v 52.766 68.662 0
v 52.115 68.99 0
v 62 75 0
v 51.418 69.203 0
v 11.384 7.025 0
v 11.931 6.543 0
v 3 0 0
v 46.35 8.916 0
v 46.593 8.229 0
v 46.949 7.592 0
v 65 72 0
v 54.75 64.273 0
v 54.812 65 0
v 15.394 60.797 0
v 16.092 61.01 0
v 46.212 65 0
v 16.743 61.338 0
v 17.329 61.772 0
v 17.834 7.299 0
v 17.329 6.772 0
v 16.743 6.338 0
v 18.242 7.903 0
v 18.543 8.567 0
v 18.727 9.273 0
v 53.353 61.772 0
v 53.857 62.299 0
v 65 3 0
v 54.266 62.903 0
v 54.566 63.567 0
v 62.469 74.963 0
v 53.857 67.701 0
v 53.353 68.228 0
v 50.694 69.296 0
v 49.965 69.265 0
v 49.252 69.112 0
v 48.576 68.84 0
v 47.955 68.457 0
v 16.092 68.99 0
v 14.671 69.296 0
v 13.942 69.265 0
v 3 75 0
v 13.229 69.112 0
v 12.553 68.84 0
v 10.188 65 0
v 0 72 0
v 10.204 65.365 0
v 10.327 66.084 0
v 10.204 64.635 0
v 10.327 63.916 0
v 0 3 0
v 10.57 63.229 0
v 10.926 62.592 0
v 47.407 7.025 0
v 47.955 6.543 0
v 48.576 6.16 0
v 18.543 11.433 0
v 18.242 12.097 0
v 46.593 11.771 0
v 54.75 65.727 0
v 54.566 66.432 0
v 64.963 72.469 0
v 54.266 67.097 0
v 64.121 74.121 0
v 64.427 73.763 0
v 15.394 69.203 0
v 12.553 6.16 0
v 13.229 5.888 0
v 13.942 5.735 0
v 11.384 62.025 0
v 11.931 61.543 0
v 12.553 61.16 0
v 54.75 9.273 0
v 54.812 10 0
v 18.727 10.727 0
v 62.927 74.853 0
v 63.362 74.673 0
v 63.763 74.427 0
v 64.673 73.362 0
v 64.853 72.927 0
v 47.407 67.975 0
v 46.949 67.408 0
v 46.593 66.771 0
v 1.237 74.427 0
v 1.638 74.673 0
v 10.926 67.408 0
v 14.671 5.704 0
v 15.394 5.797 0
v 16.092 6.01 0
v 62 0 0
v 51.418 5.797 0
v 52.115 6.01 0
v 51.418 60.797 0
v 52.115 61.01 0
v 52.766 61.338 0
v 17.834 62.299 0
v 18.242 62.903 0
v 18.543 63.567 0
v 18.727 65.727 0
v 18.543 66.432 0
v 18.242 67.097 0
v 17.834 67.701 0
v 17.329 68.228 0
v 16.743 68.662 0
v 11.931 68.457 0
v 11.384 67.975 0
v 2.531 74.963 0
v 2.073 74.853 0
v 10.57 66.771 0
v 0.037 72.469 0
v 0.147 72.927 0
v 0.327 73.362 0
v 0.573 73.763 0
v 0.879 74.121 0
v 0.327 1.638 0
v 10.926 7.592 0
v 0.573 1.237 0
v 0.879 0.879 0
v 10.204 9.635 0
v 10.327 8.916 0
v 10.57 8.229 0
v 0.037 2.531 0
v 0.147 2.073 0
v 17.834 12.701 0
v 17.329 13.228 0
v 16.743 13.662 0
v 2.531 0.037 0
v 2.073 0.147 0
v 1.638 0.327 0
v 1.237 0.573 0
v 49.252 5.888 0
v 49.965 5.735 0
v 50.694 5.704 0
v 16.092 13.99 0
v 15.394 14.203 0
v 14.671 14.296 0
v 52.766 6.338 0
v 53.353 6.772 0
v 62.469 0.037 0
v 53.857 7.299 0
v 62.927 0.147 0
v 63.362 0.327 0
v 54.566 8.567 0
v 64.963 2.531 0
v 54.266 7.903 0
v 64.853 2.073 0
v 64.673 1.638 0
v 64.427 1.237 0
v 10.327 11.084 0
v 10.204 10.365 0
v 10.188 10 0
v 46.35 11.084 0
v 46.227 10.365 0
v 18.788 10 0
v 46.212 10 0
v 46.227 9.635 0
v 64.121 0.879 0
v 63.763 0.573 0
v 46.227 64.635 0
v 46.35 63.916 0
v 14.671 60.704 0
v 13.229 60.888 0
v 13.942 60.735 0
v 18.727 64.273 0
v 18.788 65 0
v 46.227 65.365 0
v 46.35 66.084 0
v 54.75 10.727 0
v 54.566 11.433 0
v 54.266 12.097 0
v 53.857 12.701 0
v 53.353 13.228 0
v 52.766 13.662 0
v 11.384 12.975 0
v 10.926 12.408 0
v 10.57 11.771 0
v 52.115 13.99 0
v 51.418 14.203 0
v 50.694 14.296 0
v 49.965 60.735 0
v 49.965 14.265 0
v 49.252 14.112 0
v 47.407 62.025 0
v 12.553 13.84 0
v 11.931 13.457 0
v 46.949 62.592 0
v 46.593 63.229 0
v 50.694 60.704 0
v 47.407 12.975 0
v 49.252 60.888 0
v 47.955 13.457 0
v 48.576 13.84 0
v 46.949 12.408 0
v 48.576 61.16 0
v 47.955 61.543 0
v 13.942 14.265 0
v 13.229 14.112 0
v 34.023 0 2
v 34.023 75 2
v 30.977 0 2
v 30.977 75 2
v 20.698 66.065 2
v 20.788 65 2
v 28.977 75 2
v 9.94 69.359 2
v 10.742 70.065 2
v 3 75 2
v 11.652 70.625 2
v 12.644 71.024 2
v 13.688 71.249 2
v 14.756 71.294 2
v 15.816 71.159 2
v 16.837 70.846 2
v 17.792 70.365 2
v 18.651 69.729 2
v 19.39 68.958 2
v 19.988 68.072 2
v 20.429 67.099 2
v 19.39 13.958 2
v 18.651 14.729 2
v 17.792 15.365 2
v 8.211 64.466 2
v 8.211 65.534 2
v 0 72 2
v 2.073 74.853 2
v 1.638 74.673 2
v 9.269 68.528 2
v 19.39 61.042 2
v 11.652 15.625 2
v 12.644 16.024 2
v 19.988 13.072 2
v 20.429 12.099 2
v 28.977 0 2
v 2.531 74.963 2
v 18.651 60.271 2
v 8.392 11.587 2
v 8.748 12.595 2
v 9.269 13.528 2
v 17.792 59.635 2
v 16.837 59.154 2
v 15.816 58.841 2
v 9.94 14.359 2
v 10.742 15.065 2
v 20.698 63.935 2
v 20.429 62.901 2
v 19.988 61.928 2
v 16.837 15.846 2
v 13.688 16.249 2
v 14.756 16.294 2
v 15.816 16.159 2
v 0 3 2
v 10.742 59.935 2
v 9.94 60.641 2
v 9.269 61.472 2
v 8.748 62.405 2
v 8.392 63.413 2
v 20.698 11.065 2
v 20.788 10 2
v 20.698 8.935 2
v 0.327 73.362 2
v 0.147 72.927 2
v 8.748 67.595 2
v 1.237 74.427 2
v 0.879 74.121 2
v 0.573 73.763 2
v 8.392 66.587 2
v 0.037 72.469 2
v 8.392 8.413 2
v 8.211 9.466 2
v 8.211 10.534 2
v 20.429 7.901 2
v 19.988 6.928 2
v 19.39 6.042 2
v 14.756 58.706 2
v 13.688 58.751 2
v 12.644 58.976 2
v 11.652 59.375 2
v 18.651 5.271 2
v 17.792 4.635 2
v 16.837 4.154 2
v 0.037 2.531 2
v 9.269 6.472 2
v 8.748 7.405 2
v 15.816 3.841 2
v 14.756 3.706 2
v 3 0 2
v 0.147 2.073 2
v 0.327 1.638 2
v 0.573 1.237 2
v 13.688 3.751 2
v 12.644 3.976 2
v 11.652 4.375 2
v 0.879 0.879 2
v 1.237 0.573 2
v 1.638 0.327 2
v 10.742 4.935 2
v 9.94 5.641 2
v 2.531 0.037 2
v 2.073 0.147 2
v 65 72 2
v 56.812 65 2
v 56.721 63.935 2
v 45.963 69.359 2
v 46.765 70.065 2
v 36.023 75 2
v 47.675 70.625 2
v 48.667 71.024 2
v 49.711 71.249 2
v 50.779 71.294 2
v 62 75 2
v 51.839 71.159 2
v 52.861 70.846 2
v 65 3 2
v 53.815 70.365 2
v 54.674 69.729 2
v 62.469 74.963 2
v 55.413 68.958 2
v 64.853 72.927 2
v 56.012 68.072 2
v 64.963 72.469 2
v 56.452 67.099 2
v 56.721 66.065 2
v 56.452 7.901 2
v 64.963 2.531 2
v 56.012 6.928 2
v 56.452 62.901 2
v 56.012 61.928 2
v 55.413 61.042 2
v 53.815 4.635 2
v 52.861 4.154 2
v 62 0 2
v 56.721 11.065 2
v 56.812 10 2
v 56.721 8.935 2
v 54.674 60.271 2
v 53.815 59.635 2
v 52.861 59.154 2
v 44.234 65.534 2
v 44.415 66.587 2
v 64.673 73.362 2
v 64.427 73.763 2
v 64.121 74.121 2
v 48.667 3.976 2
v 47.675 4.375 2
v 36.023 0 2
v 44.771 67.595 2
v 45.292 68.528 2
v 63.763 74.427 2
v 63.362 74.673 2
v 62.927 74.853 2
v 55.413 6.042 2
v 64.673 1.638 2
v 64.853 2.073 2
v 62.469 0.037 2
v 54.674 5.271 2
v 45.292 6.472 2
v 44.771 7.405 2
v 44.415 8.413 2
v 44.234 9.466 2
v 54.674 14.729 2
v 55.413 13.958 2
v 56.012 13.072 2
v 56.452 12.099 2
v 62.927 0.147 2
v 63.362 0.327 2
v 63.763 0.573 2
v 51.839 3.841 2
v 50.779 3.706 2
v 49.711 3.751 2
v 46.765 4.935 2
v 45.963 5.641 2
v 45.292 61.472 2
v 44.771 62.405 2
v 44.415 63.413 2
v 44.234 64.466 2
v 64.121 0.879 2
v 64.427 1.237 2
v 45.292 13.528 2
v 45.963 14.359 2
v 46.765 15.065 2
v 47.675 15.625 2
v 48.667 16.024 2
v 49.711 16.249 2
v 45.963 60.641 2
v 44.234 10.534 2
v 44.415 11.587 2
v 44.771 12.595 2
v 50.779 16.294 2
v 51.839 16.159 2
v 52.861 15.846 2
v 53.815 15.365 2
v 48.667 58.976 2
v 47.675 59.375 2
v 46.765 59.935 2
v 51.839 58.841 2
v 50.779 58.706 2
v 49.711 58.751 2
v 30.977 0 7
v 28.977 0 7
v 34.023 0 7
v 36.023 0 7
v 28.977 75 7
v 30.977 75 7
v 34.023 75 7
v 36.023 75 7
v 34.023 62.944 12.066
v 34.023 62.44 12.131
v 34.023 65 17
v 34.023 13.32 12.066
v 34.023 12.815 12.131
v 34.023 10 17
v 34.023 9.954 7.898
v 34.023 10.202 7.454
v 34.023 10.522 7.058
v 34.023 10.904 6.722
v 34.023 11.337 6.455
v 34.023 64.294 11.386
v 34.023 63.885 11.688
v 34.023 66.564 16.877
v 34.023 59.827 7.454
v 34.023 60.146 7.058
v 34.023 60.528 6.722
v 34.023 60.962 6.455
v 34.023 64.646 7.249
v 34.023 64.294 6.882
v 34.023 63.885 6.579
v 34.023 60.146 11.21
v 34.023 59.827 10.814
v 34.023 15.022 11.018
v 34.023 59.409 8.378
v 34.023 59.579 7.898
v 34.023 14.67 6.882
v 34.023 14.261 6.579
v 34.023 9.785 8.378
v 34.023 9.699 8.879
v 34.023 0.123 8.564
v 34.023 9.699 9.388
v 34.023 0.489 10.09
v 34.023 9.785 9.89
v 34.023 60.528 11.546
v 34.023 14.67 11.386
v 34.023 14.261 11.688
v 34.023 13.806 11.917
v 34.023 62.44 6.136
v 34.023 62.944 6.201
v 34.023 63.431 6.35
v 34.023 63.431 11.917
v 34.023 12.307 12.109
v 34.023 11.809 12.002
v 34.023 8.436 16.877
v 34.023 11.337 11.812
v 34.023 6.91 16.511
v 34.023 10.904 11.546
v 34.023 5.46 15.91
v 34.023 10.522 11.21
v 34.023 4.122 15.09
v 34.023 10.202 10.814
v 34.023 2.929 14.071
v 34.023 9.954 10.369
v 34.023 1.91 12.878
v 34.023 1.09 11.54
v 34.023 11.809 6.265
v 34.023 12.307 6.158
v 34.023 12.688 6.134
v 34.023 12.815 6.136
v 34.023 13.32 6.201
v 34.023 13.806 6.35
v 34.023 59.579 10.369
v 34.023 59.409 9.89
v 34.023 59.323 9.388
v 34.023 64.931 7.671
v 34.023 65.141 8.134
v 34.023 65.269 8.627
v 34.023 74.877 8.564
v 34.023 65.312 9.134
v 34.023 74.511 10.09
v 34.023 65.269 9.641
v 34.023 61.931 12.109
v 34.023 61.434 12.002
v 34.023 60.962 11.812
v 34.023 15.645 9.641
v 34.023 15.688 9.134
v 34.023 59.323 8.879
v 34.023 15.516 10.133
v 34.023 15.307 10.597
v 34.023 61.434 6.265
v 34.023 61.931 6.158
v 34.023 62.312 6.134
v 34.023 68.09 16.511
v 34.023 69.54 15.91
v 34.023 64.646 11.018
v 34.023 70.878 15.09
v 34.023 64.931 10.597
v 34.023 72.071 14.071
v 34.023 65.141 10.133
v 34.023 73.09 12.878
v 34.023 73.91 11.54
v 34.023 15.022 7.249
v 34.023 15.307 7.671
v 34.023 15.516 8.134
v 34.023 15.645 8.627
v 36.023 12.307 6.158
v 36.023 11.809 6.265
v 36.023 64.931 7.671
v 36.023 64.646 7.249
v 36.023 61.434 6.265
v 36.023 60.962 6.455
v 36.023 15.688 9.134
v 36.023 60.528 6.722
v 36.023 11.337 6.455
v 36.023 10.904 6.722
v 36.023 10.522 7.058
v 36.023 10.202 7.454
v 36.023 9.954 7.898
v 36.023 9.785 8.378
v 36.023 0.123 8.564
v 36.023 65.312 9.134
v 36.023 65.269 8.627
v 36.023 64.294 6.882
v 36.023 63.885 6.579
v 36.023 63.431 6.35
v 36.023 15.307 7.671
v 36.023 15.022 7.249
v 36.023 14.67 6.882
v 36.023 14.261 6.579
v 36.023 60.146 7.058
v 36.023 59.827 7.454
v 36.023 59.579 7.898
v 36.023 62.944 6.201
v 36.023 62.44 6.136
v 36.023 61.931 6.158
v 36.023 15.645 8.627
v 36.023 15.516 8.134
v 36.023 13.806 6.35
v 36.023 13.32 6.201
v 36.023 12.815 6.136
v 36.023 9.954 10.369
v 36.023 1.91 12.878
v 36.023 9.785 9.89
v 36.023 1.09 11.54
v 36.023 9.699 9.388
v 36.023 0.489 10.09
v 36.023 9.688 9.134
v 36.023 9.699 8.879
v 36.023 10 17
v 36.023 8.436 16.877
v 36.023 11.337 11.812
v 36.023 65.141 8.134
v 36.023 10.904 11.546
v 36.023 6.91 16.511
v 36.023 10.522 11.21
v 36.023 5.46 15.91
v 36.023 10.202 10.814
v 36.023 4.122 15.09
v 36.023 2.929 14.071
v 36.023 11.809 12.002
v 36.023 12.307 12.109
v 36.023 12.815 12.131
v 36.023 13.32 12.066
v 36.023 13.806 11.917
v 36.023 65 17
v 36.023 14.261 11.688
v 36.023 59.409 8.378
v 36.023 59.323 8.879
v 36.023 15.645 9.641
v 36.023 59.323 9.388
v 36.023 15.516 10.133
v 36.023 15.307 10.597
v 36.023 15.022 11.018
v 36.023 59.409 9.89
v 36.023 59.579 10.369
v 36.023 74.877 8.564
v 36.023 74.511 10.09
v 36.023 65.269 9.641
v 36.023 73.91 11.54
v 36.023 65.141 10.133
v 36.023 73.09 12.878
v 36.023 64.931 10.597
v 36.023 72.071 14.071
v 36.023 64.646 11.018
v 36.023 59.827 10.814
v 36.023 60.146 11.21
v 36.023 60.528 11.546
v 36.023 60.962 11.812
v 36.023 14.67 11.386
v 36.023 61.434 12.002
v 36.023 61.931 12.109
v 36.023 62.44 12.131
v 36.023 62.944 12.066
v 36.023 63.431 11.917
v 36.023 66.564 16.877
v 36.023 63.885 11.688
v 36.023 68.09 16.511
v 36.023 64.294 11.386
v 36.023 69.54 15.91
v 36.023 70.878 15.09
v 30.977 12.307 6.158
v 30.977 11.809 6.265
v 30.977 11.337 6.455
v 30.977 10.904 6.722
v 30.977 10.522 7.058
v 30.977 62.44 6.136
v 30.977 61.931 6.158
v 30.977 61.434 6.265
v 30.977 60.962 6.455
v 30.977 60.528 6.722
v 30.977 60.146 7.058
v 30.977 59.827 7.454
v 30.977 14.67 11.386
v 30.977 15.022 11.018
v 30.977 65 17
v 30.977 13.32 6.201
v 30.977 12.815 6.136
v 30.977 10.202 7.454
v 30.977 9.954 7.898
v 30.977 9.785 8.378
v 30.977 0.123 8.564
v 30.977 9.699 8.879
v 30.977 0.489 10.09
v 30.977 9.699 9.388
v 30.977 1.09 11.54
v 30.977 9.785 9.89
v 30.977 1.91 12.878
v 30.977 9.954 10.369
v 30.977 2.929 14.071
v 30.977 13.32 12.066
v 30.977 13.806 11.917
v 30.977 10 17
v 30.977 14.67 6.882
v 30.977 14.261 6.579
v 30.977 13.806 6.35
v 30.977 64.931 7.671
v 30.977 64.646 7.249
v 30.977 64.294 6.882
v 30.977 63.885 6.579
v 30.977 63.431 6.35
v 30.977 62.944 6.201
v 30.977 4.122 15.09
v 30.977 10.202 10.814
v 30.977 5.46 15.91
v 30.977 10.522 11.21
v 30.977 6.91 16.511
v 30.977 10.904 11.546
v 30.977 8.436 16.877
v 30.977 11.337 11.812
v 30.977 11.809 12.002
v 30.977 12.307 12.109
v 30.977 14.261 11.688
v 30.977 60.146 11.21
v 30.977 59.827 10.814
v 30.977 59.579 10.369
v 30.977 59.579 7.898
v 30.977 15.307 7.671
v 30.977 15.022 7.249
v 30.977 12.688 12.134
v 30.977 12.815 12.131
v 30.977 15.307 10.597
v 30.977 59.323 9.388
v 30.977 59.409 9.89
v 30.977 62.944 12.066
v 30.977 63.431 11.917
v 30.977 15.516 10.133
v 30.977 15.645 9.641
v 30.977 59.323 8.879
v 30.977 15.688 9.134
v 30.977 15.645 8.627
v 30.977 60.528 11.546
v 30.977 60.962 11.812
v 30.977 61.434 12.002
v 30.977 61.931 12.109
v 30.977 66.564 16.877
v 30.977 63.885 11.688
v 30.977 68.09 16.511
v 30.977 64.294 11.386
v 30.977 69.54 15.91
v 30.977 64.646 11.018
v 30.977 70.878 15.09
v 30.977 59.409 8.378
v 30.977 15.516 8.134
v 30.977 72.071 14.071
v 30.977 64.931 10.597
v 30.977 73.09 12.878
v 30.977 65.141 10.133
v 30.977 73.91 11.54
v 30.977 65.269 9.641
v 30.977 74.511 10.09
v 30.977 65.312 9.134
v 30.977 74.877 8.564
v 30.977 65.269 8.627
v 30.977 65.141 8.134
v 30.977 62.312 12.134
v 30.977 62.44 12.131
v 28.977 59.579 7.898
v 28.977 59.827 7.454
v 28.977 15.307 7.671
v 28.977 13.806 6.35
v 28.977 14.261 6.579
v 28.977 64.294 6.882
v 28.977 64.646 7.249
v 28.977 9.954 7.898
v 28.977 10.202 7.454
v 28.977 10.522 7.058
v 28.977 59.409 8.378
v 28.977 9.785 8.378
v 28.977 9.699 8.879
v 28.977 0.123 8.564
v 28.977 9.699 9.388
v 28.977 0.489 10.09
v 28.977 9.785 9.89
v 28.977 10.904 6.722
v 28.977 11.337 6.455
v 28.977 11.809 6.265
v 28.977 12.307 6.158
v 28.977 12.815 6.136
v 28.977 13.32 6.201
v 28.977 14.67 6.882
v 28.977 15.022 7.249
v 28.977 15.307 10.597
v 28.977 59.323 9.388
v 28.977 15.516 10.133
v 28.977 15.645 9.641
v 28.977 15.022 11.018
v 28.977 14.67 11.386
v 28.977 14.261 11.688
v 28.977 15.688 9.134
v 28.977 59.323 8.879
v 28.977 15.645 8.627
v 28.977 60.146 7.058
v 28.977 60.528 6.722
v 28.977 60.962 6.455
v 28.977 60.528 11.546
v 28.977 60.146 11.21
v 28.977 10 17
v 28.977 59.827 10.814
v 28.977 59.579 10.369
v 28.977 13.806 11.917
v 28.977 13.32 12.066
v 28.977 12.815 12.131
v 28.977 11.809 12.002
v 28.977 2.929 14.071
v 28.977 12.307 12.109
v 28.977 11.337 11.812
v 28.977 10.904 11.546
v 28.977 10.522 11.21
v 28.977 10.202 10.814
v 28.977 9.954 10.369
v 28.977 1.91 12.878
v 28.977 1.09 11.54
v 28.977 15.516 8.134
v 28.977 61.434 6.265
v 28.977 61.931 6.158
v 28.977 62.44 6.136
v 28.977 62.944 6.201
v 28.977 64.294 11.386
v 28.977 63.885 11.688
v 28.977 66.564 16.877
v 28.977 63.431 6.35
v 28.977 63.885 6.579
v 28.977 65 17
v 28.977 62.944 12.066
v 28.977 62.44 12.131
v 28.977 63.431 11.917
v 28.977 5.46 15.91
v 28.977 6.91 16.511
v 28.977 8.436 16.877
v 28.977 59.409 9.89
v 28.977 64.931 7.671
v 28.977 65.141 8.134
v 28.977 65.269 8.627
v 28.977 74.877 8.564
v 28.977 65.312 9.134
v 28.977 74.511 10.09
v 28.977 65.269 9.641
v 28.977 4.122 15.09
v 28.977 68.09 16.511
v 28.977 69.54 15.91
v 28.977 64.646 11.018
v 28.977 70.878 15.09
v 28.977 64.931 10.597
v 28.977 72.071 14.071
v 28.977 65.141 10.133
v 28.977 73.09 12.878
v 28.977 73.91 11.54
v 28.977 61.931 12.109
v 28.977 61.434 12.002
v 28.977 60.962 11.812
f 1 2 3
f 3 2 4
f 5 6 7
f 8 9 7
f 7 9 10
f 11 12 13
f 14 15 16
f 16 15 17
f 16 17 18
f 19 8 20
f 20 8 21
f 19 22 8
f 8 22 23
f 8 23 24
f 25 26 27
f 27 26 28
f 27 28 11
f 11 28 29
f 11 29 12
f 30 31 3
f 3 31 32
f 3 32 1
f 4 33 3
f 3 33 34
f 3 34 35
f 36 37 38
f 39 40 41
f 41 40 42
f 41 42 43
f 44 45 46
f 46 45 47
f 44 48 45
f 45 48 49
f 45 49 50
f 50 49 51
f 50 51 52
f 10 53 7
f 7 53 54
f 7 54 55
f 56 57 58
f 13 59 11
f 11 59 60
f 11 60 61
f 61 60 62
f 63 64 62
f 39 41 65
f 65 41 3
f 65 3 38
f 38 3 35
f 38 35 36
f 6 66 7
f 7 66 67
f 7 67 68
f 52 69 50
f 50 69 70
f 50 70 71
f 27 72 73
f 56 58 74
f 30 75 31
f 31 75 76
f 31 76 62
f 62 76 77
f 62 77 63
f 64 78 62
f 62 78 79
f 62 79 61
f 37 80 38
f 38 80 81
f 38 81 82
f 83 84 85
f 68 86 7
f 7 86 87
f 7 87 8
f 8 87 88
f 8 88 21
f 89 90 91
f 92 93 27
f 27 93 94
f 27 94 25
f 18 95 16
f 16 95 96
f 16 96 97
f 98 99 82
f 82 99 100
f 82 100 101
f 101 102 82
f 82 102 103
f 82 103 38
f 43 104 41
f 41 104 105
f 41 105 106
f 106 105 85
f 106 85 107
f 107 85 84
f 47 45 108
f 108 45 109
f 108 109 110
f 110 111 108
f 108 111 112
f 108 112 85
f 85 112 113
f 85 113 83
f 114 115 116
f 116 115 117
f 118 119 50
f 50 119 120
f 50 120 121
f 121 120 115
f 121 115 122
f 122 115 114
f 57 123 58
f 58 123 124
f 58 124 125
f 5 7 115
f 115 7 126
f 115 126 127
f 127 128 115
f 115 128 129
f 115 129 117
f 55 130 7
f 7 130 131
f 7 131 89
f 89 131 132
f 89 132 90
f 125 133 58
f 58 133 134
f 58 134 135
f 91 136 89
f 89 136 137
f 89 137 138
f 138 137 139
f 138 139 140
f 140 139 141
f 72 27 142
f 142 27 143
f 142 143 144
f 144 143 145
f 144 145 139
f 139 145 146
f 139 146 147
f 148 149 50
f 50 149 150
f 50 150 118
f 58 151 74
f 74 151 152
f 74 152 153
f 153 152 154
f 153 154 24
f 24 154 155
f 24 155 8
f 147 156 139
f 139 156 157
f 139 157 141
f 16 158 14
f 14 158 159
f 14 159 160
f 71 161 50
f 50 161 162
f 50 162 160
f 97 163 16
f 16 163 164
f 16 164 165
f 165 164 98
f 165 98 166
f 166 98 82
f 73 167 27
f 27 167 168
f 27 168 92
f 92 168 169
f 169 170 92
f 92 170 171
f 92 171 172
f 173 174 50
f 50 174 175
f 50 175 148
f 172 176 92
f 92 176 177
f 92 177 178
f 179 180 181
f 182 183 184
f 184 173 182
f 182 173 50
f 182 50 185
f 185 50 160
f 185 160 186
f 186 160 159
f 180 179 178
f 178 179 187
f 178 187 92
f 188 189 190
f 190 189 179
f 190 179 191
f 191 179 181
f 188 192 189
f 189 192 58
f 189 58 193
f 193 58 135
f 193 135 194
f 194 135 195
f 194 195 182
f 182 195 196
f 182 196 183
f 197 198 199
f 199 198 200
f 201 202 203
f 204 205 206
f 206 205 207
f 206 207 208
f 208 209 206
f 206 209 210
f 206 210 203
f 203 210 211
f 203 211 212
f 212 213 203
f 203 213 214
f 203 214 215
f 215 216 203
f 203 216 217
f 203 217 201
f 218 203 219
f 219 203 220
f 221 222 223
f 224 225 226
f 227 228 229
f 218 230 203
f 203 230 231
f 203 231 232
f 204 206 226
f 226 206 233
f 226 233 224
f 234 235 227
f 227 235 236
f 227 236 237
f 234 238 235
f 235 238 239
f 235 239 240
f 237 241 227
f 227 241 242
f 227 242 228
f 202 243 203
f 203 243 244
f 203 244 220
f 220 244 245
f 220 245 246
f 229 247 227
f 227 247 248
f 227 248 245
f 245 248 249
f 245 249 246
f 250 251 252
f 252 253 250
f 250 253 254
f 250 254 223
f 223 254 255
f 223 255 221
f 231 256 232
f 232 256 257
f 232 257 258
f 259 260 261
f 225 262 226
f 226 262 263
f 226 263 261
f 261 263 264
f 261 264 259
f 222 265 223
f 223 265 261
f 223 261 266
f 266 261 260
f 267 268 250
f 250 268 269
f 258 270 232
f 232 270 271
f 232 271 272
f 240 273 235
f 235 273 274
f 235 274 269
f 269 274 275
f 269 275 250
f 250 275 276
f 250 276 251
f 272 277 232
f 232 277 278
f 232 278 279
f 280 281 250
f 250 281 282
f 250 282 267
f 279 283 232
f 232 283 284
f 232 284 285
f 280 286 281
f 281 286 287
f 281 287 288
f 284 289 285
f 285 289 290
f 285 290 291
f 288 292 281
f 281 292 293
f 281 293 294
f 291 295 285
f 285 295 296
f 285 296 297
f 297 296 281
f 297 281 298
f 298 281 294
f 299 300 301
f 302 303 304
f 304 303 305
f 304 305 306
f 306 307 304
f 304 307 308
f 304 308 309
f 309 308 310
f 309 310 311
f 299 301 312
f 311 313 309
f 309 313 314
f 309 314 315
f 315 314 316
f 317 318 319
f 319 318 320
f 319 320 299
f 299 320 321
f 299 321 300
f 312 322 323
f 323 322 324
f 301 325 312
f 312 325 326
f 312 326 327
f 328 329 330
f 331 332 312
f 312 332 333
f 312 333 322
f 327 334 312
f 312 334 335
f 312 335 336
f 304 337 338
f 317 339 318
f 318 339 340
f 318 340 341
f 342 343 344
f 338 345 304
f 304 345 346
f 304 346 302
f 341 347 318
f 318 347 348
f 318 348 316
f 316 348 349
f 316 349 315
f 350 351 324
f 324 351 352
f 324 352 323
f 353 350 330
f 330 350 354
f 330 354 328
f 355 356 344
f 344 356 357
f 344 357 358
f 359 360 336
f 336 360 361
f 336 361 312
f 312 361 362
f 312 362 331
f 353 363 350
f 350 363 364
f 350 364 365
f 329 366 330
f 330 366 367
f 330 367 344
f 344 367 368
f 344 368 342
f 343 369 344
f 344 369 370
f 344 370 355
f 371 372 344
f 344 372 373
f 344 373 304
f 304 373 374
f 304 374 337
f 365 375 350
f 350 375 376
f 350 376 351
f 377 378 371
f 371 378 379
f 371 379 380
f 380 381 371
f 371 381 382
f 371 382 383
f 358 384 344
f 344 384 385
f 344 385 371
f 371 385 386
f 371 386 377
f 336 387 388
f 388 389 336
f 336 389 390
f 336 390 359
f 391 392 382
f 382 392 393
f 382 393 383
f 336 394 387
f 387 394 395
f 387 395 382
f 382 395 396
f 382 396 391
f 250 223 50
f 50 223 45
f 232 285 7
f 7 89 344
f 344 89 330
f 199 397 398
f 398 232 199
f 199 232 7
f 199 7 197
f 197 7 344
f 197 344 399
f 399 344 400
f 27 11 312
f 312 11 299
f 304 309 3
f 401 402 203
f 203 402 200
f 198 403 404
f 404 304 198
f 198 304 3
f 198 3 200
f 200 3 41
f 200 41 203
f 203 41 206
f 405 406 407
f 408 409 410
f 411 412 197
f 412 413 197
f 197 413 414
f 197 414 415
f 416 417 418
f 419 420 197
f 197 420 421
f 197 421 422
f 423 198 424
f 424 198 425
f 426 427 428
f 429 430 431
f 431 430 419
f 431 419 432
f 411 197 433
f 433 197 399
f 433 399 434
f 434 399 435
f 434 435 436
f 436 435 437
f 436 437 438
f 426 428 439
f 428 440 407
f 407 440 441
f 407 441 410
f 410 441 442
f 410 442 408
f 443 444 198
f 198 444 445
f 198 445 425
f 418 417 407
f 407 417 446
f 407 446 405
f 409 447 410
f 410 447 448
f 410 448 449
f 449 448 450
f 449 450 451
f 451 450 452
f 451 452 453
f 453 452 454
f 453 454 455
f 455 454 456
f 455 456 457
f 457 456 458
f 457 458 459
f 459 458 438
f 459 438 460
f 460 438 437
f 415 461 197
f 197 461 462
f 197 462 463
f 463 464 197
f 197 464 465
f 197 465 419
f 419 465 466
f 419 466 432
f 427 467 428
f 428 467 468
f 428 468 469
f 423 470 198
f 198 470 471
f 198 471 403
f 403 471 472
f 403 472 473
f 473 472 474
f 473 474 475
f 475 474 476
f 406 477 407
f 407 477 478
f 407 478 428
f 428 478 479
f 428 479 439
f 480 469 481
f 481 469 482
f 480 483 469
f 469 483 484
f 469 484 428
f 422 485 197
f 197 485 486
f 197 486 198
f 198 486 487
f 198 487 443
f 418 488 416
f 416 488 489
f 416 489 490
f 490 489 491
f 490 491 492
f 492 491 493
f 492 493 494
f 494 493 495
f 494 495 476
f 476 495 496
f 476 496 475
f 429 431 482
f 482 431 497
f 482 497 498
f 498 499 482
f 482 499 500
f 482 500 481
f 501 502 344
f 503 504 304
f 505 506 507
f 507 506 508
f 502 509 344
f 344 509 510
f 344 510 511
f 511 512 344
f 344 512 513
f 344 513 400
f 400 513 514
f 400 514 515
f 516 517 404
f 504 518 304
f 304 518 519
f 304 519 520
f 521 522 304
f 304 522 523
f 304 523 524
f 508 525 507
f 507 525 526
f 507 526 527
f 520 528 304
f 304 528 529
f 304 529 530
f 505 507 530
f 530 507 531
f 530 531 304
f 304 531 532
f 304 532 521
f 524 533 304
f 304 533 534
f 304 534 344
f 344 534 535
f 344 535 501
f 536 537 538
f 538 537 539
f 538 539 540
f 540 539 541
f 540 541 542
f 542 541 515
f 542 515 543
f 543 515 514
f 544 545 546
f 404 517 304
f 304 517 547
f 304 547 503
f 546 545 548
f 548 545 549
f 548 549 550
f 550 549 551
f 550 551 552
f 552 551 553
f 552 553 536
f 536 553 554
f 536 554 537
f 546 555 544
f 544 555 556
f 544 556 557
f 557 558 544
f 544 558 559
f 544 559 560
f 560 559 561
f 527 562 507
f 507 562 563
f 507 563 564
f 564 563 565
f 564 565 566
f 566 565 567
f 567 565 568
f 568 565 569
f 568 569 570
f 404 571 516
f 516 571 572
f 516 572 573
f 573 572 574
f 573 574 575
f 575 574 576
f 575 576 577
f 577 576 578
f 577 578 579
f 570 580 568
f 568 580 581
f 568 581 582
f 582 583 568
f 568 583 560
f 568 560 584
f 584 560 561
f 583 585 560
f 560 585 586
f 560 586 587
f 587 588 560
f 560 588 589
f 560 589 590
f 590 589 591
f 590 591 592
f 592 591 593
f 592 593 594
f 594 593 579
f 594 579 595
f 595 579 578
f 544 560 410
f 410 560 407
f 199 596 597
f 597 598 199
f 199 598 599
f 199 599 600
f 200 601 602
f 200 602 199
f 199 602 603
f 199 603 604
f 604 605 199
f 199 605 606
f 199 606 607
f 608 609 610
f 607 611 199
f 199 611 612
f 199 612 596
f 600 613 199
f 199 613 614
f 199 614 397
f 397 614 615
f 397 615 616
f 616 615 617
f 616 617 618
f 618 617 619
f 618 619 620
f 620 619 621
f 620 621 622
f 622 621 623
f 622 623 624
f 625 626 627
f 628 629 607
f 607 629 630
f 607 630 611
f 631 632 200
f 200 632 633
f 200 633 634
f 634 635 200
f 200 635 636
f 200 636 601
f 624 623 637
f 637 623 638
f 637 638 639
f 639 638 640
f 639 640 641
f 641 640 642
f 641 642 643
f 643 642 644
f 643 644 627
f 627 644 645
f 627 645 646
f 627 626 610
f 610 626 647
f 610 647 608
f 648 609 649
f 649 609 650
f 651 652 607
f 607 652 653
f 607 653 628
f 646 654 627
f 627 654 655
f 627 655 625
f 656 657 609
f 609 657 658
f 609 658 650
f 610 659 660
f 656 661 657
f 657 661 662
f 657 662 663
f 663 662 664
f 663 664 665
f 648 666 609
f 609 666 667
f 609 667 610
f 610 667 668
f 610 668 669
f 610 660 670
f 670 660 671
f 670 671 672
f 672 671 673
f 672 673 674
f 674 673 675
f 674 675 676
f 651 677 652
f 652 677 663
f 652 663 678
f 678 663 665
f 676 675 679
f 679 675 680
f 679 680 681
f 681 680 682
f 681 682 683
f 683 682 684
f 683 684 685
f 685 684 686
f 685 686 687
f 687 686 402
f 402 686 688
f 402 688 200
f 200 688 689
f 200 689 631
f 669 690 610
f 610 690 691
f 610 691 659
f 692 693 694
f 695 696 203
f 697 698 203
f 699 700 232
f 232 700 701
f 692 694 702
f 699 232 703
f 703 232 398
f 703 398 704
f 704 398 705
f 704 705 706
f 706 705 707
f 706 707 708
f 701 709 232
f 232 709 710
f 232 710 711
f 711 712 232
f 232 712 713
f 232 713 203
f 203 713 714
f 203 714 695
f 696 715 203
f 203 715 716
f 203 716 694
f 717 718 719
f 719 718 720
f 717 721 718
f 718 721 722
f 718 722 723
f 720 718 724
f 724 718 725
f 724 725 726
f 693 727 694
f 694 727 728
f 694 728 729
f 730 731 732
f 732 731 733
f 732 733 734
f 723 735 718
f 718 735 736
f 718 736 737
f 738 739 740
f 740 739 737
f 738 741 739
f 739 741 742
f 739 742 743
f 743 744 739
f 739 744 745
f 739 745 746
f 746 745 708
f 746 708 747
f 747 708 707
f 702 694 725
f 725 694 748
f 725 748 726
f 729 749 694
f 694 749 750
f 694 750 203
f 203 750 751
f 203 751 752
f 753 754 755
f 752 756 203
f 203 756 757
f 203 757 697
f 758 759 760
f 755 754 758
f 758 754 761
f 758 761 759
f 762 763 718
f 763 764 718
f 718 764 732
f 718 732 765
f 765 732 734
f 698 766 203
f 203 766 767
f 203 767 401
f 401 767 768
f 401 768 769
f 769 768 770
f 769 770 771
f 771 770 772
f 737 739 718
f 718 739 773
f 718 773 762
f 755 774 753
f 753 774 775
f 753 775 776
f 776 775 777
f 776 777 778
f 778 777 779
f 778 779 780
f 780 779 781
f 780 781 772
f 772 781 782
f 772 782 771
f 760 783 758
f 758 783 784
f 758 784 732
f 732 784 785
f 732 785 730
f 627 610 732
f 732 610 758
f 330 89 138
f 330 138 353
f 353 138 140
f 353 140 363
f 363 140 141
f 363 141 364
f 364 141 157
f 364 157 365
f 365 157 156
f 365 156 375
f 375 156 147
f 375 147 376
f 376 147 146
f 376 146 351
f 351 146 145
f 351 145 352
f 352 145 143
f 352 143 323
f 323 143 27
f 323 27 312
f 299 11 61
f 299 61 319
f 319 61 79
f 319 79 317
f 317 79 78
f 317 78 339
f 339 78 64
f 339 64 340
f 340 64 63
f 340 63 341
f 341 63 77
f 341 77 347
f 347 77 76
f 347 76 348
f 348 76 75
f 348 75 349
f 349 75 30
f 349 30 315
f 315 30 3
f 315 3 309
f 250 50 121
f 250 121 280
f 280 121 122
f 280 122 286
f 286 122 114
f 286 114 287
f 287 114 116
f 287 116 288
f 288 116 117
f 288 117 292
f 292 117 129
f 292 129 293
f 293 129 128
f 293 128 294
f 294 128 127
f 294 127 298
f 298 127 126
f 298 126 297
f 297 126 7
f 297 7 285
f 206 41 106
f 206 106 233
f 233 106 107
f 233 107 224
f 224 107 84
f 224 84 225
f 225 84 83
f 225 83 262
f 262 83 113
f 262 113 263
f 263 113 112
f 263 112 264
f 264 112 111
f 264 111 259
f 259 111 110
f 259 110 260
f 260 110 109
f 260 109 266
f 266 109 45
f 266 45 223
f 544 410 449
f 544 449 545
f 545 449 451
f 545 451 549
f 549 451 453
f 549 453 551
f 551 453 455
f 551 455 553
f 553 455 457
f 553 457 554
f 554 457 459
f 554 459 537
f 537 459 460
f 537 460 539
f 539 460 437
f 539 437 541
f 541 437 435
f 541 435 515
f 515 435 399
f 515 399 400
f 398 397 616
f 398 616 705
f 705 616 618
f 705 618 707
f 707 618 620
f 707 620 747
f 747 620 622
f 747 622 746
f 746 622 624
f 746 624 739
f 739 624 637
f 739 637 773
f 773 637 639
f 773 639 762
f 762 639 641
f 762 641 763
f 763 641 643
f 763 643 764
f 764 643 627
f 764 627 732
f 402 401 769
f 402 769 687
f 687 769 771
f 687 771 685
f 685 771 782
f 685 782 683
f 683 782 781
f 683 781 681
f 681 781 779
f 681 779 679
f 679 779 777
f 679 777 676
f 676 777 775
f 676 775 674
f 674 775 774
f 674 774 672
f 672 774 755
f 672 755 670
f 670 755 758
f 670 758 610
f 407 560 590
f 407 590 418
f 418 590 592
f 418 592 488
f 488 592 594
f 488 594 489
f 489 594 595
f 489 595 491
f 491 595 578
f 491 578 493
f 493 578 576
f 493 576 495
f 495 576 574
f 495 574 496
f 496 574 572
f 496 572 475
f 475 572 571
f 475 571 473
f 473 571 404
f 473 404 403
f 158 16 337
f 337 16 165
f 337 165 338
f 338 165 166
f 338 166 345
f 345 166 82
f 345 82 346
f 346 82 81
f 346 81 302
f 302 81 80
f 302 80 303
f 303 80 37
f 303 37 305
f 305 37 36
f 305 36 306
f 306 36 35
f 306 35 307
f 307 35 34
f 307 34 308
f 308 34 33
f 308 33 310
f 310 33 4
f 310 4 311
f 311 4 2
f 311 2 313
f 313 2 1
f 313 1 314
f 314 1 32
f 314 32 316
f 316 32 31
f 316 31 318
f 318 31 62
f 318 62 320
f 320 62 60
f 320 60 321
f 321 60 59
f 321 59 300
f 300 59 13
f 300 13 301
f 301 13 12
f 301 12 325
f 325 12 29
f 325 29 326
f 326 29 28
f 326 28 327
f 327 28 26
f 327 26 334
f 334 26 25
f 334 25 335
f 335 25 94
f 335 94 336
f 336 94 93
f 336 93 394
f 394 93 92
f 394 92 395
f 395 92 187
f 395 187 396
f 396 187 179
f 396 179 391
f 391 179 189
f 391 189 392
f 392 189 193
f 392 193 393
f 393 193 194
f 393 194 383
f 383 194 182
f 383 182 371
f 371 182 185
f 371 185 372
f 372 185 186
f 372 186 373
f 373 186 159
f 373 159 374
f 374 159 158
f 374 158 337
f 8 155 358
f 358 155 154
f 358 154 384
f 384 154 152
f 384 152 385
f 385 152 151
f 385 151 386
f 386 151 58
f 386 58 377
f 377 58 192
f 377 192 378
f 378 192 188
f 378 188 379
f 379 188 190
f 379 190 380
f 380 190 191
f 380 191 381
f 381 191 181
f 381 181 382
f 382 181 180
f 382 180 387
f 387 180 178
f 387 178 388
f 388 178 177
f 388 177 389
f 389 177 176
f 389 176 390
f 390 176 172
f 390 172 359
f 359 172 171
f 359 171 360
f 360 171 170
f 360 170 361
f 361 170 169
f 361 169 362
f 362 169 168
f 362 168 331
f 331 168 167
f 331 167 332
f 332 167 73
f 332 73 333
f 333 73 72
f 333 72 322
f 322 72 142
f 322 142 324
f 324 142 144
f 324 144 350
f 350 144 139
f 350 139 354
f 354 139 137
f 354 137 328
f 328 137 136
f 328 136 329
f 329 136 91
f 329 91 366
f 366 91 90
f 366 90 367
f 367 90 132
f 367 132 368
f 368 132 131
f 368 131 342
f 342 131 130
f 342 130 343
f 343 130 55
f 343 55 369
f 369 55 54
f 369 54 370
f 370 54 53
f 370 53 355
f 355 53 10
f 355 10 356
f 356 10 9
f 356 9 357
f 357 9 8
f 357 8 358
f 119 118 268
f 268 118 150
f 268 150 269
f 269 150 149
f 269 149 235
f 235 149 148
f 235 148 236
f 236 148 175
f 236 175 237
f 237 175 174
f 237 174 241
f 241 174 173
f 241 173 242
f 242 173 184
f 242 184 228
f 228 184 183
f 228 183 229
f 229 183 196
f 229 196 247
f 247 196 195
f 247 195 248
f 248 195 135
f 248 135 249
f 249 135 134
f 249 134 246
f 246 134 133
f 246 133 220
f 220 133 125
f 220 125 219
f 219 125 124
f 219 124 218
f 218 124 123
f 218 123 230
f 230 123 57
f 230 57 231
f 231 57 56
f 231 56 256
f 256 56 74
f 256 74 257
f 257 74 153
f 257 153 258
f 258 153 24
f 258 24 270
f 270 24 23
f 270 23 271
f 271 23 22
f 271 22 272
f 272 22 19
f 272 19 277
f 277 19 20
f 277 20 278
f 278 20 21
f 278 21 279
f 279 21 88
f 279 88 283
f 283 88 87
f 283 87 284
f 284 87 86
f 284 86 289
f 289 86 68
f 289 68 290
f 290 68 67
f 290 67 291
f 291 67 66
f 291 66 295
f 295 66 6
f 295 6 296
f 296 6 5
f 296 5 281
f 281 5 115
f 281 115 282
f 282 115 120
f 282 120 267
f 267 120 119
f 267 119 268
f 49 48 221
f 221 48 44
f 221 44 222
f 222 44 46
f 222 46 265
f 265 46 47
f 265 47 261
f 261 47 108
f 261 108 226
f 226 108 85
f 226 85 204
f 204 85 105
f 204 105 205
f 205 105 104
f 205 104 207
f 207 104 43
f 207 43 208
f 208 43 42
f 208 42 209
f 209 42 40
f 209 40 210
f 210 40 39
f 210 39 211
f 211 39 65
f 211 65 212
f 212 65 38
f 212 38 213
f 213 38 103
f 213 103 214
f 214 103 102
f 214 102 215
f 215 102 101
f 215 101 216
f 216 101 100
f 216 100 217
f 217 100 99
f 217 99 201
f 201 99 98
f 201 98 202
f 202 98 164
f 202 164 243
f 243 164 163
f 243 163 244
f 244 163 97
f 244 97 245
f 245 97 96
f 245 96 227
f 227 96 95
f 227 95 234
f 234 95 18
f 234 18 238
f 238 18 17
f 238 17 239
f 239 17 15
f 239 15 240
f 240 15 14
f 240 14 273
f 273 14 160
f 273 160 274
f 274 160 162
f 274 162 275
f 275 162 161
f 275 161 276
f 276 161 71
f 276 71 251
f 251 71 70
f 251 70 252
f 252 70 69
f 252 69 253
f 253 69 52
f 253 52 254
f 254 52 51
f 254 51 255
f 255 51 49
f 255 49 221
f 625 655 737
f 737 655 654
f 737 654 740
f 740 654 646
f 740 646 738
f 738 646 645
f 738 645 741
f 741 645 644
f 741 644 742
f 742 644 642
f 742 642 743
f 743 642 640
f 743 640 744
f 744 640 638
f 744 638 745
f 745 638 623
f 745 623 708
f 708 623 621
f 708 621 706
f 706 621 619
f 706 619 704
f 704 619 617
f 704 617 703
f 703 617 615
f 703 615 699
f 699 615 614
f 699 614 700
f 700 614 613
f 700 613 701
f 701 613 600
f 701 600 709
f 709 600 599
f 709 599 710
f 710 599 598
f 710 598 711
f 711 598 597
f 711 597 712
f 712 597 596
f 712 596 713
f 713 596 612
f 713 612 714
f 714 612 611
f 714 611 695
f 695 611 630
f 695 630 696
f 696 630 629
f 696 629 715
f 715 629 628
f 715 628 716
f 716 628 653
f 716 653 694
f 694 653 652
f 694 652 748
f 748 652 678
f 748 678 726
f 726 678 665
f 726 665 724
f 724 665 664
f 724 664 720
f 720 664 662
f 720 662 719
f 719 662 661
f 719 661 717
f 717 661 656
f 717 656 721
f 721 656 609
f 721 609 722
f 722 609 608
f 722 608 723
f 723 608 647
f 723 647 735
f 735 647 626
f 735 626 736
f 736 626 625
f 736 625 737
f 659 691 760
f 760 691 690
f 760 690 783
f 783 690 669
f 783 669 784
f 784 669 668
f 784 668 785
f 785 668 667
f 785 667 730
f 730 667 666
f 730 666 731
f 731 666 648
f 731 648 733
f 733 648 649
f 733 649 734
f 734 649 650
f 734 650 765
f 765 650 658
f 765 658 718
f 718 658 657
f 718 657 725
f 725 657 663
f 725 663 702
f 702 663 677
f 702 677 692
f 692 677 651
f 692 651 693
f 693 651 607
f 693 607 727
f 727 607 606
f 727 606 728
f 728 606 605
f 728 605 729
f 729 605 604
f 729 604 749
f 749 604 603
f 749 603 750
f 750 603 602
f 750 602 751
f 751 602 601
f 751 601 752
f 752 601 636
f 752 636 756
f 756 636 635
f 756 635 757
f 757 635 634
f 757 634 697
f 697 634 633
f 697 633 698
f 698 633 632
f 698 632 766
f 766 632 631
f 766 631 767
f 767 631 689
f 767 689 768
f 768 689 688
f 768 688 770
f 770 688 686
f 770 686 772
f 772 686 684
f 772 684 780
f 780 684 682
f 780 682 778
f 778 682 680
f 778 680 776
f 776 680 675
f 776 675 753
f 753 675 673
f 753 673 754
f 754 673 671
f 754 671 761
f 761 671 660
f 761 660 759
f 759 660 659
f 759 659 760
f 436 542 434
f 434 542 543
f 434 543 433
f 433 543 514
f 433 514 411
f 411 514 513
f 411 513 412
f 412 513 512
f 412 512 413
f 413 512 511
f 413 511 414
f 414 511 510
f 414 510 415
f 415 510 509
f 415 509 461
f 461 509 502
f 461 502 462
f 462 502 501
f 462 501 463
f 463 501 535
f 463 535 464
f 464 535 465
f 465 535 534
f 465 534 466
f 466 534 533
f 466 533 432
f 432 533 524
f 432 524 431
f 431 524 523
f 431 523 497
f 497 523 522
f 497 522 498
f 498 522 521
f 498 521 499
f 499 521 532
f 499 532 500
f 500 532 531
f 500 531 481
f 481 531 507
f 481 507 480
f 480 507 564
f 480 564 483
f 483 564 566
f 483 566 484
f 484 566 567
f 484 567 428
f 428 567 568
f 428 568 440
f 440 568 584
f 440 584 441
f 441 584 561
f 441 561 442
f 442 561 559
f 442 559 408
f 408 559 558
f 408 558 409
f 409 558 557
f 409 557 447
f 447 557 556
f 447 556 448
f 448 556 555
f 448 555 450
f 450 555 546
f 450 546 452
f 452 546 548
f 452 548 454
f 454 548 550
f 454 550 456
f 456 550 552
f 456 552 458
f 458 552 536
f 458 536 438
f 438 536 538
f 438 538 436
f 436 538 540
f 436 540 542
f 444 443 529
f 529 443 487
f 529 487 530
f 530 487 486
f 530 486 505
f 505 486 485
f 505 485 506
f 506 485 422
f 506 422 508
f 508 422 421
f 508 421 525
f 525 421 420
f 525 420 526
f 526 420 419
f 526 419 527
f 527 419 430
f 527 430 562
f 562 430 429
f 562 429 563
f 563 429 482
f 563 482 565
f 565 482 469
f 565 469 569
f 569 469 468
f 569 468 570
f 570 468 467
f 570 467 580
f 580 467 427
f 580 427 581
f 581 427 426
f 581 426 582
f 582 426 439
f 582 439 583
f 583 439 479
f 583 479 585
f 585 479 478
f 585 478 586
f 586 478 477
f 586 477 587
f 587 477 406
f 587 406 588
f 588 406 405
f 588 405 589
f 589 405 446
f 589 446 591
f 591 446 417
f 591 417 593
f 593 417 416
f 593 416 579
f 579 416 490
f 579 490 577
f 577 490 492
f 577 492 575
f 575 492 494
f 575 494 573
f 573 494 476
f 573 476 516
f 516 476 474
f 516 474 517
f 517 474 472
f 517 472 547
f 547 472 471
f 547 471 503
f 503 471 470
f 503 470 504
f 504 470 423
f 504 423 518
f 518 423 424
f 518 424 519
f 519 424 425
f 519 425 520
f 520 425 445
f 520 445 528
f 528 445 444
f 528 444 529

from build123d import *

# Parameters (mm, degrees)
ESQUISSE1_W             = 65
ESQUISSE1_H             = 75
BOSS_EXTRU_1_DEPTH      = 2
ESQUISSE2_W             = 2
ESQUISSE2_H             = 75
BOSS_EXTRU_2_DEPTH      = 15
CONG_1_R                = 3
CONG_2_R                = 10
ESQUISSE6_R             = 3
ENL_V_MAT_EXTRU_1_DEPTH = 15


# Read off the part's stored shape, not the designer's step: Fraisage pour vis à tête fraisée M61
with BuildPart() as part:
    # Esquisse1 → Boss.-Extru.1 (new body)
    with BuildSketch(Plane.XY):
        with Locations((32.5, 37.5)):
            Rectangle(ESQUISSE1_W, ESQUISSE1_H)
    extrude(amount=BOSS_EXTRU_1_DEPTH)

    # Esquisse2 → Boss.-Extru.2 (add)
    with BuildSketch(Plane.XY.offset(2)):
        with Locations((29.976787497, 37.5)):
            Rectangle(ESQUISSE2_W, ESQUISSE2_H)
        with Locations((35.023212503, 37.5)):
            Rectangle(ESQUISSE2_W, ESQUISSE2_H)
    extrude(amount=BOSS_EXTRU_2_DEPTH)

    # Congé1
    cong_1_edges = [part.edges().sort_by_distance(p)[0] for p in [
        (0, 75, 1),
        (65, 75, 1),
        (65, 0, 1),
        (0, 0, 1),
    ]]
    fillet(cong_1_edges, radius=CONG_1_R)

    # Congé2
    cong_2_edges = [part.edges().sort_by_distance(p)[0] for p in [
        (35.023212503, 0, 17),
        (35.023212503, 75, 17),
        (29.976787497, 75, 17),
        (29.976787497, 0, 17),
    ]]
    fillet(cong_2_edges, radius=CONG_2_R)

    # Fraisage pour vis à tête fraisée M61 out → Fraisage pour vis à tête fraisée M61 (revolve, cut)
    with BuildSketch(Plane(origin=(50.511606252, 65, 0), x_dir=(1, 0, 0), z_dir=(0, -1, 0))):
        Polygon((6.3, 2), (0, 2), (0, 0), (4.3, 0), align=None)
    revolve(axis=Axis((50.511606252, 65, 0), (0, 0, 1)), mode=Mode.SUBTRACT)

    # Fraisage pour vis _ t_te frais_e M61 2 o → Fraisage pour vis _ t_te frais_e M61 2 (revolve, cut)
    with BuildSketch(Plane(origin=(50.511606252, 10, 0), x_dir=(1, 0, 0), z_dir=(0, -1, 0))):
        Polygon((6.3, 2), (0, 2), (0, 0), (4.3, 0), align=None)
    revolve(axis=Axis((50.511606252, 10, 0), (0, 0, 1)), mode=Mode.SUBTRACT)

    # Fraisage pour vis _ t_te frais_e M61 3 o → Fraisage pour vis _ t_te frais_e M61 3 (revolve, cut)
    with BuildSketch(Plane(origin=(14.488393748, 10, 0), x_dir=(1, 0, 0), z_dir=(0, -1, 0))):
        Polygon((6.3, 2), (0, 2), (0, 0), (4.3, 0), align=None)
    revolve(axis=Axis((14.488393748, 10, 0), (0, 0, 1)), mode=Mode.SUBTRACT)

    # Fraisage pour vis _ t_te frais_e M61 4 o → Fraisage pour vis _ t_te frais_e M61 4 (revolve, cut)
    with BuildSketch(Plane(origin=(14.488393748, 65, 0), x_dir=(1, 0, 0), z_dir=(0, -1, 0))):
        Polygon((6.3, 2), (0, 2), (0, 0), (4.3, 0), align=None)
    revolve(axis=Axis((14.488393748, 65, 0), (0, 0, 1)), mode=Mode.SUBTRACT)

    # Esquisse6 → Enlèv. mat.-Extru.1 (cut)
    with BuildSketch(Plane(origin=(36.023212503, 0, 0), x_dir=(0, 0, -1), z_dir=(1, 0, 0))):
        with Locations(Location((-9.133710771, 62.312214024, 0), (0, 0, 90))):
            Circle(ESQUISSE6_R)
        with Locations(Location((-9.133710771, 12.687785976, 0), (0, 0, 90))):
            Circle(ESQUISSE6_R)
    extrude(amount=-ENL_V_MAT_EXTRU_1_DEPTH, mode=Mode.SUBTRACT)


solid = part.part
